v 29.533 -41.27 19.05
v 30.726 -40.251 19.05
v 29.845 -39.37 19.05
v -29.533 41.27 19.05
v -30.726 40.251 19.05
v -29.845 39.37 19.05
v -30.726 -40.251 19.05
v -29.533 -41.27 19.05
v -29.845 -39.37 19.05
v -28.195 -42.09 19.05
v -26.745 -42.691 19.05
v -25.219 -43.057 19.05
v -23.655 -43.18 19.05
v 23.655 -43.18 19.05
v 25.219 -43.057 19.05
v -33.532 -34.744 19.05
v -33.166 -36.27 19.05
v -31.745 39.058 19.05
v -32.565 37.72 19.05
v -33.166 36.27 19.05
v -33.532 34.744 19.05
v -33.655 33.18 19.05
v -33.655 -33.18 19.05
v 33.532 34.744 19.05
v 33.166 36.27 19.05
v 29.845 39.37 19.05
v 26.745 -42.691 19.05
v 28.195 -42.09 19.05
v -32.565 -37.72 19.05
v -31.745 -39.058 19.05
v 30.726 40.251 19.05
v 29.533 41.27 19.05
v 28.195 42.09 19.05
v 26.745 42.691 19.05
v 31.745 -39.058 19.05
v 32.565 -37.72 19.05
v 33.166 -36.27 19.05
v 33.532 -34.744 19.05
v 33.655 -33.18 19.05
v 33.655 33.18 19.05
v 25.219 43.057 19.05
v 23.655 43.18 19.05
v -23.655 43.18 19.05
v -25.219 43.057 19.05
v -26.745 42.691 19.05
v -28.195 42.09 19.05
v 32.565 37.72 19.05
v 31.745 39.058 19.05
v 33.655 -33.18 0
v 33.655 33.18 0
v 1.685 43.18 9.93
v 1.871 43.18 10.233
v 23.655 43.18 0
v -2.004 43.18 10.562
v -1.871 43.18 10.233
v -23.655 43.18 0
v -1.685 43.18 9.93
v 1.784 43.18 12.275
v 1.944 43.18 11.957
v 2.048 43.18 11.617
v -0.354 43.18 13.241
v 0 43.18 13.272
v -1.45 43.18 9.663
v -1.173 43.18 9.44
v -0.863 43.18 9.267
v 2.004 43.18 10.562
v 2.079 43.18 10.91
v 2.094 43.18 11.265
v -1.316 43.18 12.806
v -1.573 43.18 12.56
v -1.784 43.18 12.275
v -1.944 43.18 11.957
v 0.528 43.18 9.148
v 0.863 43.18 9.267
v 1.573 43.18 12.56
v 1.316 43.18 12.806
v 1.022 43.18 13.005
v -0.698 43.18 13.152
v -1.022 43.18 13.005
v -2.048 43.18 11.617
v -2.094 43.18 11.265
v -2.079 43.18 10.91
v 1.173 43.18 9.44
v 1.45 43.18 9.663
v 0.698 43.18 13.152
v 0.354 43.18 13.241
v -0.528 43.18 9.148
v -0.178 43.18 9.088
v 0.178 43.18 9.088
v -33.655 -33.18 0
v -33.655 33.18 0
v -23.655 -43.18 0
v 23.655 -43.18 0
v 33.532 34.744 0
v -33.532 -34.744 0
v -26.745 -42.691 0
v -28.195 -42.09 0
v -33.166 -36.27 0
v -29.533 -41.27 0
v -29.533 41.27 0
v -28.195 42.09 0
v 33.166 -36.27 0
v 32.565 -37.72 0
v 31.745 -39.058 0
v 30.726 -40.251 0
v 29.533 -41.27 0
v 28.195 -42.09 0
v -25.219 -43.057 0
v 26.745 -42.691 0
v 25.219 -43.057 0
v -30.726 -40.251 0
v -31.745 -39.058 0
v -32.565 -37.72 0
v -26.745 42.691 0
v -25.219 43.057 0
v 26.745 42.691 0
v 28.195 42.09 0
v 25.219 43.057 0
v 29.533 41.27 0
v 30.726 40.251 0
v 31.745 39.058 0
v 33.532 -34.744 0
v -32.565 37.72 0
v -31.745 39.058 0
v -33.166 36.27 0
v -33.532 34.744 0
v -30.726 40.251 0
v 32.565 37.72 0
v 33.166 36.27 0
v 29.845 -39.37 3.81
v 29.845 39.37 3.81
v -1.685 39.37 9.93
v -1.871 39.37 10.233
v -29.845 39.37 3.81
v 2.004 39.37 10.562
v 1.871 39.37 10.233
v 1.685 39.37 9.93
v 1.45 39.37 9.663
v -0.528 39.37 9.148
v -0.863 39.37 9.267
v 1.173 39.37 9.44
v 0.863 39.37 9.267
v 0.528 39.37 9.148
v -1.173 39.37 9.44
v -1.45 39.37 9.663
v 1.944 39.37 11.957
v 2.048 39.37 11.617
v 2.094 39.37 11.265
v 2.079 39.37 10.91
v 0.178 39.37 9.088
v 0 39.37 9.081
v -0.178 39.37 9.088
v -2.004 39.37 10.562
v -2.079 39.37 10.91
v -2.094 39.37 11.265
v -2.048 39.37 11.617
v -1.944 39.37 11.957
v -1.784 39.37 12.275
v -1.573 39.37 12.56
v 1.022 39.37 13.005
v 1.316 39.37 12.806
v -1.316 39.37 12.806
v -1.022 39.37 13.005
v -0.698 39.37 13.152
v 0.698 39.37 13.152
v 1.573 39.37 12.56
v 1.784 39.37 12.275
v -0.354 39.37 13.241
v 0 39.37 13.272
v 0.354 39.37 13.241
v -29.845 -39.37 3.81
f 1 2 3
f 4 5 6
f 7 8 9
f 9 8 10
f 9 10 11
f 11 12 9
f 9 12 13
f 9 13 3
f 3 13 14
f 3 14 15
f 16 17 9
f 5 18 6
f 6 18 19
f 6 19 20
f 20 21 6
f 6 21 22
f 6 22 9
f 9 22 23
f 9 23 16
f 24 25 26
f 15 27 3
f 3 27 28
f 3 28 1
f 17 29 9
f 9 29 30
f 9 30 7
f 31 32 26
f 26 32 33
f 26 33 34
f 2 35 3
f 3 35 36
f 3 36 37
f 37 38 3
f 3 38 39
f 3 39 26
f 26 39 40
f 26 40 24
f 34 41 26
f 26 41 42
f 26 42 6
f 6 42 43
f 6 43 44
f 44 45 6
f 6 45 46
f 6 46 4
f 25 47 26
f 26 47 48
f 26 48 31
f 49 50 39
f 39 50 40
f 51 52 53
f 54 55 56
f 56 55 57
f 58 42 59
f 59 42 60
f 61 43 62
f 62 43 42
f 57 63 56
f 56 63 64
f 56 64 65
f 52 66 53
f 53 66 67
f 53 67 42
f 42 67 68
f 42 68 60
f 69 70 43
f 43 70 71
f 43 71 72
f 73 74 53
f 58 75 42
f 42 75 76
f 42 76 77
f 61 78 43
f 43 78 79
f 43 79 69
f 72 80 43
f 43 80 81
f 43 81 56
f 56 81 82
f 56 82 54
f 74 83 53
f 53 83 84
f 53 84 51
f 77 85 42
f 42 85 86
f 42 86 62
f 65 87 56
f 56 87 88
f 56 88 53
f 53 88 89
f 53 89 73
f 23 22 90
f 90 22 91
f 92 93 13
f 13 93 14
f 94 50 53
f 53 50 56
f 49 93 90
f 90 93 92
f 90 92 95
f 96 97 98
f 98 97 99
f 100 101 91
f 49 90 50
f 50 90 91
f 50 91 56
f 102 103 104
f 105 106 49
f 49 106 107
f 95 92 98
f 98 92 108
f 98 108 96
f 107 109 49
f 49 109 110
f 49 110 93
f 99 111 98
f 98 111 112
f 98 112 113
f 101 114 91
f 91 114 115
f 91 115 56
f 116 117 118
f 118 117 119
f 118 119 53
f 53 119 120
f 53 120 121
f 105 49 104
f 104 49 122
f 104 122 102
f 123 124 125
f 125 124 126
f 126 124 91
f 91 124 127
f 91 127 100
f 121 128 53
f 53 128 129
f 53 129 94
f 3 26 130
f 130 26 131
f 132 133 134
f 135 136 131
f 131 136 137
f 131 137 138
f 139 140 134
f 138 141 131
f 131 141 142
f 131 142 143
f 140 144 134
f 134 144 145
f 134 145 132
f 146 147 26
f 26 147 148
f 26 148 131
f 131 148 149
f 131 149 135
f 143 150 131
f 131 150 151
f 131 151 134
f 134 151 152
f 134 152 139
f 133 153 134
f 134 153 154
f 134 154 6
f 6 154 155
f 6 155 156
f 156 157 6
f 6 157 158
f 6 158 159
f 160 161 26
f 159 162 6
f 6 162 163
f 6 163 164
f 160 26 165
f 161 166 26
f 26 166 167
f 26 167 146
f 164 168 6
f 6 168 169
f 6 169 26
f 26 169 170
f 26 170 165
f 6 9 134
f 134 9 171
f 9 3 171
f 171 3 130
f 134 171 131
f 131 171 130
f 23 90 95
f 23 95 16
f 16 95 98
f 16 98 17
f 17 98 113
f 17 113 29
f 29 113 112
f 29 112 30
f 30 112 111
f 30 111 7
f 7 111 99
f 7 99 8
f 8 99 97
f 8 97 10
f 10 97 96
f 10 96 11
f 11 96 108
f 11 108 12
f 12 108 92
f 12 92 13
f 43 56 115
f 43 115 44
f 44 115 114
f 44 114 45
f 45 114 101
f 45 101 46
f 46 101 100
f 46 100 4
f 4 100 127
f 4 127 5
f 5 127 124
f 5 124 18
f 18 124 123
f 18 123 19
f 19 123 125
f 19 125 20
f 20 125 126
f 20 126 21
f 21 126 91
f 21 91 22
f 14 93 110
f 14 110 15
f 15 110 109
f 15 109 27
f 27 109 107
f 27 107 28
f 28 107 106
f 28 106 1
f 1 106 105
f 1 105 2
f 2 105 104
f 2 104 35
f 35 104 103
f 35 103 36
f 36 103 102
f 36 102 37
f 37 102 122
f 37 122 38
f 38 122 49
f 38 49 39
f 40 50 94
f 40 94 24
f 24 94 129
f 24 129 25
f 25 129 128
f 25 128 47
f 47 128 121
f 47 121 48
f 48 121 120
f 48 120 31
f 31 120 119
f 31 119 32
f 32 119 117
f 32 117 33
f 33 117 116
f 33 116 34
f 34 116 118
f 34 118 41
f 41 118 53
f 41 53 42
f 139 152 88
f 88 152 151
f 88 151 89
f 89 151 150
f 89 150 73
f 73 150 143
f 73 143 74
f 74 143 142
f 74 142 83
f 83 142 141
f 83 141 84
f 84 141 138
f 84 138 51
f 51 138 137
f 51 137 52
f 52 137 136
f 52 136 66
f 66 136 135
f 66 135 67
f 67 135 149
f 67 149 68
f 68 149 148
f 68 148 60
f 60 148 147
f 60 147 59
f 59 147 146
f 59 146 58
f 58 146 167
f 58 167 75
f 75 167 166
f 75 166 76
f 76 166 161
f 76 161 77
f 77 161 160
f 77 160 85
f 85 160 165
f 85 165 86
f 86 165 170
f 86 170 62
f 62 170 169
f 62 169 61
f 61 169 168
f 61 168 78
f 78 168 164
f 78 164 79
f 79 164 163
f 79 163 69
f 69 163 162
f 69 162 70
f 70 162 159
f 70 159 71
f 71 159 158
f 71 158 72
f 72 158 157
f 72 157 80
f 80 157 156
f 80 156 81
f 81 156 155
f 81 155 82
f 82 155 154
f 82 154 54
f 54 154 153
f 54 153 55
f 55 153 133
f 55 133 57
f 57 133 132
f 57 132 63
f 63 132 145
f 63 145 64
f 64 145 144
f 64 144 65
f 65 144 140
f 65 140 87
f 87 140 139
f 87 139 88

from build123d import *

# Parameters (mm, degrees)
SKETCH1_W           = 67.31
SKETCH1_H           = 86.36
BOSS_EXTRUDE1_DEPTH = 19.05
SHELL1_T            = -3.81
FILLET3_R           = 10
CUT_EXTRUDE1_REACH  = 96.624
SKETCH2_R           = 2.0955


with BuildPart() as part:
    # Sketch1 → Boss-Extrude1 (new body)
    with BuildSketch(Plane.XY):
        Rectangle(SKETCH1_W, SKETCH1_H)
    extrude(amount=BOSS_EXTRUDE1_DEPTH)

    # Shell1
    shell1_openings = [part.faces().sort_by_distance(p)[0] for p in [
        (0, 0, 19.05),
    ]]
    offset(amount=SHELL1_T, openings=shell1_openings, kind=Kind.INTERSECTION)

    # Fillet3
    fillet3_edges = [part.edges().sort_by_distance(p)[0] for p in [
        (33.655, -43.18, 9.525),
        (-33.655, -43.18, 9.525),
        (-33.655, 43.18, 9.525),
        (33.655, 43.18, 9.525),
    ]]
    fillet(fillet3_edges, radius=FILLET3_R)

    # Sketch2 → Cut-Extrude1 (cut, up to next)
    with BuildSketch(Plane(origin=(0, 43.18, 0), x_dir=(1, 0, 0), z_dir=(0, 1, 0)), mode=Mode.PRIVATE) as cut_extrude1_sk1:
        with Locations(Location((0, -11.176, 0), (0, 0, 270))):
            Circle(SKETCH2_R)
    cut_extrude1_tool1 = extrude(cut_extrude1_sk1.sketch, amount=-CUT_EXTRUDE1_REACH, mode=Mode.PRIVATE) & part.part
    add(cut_extrude1_tool1.solids().sort_by_distance((0, 43.18, 11.176))[0], mode=Mode.SUBTRACT)


solid = part.part
